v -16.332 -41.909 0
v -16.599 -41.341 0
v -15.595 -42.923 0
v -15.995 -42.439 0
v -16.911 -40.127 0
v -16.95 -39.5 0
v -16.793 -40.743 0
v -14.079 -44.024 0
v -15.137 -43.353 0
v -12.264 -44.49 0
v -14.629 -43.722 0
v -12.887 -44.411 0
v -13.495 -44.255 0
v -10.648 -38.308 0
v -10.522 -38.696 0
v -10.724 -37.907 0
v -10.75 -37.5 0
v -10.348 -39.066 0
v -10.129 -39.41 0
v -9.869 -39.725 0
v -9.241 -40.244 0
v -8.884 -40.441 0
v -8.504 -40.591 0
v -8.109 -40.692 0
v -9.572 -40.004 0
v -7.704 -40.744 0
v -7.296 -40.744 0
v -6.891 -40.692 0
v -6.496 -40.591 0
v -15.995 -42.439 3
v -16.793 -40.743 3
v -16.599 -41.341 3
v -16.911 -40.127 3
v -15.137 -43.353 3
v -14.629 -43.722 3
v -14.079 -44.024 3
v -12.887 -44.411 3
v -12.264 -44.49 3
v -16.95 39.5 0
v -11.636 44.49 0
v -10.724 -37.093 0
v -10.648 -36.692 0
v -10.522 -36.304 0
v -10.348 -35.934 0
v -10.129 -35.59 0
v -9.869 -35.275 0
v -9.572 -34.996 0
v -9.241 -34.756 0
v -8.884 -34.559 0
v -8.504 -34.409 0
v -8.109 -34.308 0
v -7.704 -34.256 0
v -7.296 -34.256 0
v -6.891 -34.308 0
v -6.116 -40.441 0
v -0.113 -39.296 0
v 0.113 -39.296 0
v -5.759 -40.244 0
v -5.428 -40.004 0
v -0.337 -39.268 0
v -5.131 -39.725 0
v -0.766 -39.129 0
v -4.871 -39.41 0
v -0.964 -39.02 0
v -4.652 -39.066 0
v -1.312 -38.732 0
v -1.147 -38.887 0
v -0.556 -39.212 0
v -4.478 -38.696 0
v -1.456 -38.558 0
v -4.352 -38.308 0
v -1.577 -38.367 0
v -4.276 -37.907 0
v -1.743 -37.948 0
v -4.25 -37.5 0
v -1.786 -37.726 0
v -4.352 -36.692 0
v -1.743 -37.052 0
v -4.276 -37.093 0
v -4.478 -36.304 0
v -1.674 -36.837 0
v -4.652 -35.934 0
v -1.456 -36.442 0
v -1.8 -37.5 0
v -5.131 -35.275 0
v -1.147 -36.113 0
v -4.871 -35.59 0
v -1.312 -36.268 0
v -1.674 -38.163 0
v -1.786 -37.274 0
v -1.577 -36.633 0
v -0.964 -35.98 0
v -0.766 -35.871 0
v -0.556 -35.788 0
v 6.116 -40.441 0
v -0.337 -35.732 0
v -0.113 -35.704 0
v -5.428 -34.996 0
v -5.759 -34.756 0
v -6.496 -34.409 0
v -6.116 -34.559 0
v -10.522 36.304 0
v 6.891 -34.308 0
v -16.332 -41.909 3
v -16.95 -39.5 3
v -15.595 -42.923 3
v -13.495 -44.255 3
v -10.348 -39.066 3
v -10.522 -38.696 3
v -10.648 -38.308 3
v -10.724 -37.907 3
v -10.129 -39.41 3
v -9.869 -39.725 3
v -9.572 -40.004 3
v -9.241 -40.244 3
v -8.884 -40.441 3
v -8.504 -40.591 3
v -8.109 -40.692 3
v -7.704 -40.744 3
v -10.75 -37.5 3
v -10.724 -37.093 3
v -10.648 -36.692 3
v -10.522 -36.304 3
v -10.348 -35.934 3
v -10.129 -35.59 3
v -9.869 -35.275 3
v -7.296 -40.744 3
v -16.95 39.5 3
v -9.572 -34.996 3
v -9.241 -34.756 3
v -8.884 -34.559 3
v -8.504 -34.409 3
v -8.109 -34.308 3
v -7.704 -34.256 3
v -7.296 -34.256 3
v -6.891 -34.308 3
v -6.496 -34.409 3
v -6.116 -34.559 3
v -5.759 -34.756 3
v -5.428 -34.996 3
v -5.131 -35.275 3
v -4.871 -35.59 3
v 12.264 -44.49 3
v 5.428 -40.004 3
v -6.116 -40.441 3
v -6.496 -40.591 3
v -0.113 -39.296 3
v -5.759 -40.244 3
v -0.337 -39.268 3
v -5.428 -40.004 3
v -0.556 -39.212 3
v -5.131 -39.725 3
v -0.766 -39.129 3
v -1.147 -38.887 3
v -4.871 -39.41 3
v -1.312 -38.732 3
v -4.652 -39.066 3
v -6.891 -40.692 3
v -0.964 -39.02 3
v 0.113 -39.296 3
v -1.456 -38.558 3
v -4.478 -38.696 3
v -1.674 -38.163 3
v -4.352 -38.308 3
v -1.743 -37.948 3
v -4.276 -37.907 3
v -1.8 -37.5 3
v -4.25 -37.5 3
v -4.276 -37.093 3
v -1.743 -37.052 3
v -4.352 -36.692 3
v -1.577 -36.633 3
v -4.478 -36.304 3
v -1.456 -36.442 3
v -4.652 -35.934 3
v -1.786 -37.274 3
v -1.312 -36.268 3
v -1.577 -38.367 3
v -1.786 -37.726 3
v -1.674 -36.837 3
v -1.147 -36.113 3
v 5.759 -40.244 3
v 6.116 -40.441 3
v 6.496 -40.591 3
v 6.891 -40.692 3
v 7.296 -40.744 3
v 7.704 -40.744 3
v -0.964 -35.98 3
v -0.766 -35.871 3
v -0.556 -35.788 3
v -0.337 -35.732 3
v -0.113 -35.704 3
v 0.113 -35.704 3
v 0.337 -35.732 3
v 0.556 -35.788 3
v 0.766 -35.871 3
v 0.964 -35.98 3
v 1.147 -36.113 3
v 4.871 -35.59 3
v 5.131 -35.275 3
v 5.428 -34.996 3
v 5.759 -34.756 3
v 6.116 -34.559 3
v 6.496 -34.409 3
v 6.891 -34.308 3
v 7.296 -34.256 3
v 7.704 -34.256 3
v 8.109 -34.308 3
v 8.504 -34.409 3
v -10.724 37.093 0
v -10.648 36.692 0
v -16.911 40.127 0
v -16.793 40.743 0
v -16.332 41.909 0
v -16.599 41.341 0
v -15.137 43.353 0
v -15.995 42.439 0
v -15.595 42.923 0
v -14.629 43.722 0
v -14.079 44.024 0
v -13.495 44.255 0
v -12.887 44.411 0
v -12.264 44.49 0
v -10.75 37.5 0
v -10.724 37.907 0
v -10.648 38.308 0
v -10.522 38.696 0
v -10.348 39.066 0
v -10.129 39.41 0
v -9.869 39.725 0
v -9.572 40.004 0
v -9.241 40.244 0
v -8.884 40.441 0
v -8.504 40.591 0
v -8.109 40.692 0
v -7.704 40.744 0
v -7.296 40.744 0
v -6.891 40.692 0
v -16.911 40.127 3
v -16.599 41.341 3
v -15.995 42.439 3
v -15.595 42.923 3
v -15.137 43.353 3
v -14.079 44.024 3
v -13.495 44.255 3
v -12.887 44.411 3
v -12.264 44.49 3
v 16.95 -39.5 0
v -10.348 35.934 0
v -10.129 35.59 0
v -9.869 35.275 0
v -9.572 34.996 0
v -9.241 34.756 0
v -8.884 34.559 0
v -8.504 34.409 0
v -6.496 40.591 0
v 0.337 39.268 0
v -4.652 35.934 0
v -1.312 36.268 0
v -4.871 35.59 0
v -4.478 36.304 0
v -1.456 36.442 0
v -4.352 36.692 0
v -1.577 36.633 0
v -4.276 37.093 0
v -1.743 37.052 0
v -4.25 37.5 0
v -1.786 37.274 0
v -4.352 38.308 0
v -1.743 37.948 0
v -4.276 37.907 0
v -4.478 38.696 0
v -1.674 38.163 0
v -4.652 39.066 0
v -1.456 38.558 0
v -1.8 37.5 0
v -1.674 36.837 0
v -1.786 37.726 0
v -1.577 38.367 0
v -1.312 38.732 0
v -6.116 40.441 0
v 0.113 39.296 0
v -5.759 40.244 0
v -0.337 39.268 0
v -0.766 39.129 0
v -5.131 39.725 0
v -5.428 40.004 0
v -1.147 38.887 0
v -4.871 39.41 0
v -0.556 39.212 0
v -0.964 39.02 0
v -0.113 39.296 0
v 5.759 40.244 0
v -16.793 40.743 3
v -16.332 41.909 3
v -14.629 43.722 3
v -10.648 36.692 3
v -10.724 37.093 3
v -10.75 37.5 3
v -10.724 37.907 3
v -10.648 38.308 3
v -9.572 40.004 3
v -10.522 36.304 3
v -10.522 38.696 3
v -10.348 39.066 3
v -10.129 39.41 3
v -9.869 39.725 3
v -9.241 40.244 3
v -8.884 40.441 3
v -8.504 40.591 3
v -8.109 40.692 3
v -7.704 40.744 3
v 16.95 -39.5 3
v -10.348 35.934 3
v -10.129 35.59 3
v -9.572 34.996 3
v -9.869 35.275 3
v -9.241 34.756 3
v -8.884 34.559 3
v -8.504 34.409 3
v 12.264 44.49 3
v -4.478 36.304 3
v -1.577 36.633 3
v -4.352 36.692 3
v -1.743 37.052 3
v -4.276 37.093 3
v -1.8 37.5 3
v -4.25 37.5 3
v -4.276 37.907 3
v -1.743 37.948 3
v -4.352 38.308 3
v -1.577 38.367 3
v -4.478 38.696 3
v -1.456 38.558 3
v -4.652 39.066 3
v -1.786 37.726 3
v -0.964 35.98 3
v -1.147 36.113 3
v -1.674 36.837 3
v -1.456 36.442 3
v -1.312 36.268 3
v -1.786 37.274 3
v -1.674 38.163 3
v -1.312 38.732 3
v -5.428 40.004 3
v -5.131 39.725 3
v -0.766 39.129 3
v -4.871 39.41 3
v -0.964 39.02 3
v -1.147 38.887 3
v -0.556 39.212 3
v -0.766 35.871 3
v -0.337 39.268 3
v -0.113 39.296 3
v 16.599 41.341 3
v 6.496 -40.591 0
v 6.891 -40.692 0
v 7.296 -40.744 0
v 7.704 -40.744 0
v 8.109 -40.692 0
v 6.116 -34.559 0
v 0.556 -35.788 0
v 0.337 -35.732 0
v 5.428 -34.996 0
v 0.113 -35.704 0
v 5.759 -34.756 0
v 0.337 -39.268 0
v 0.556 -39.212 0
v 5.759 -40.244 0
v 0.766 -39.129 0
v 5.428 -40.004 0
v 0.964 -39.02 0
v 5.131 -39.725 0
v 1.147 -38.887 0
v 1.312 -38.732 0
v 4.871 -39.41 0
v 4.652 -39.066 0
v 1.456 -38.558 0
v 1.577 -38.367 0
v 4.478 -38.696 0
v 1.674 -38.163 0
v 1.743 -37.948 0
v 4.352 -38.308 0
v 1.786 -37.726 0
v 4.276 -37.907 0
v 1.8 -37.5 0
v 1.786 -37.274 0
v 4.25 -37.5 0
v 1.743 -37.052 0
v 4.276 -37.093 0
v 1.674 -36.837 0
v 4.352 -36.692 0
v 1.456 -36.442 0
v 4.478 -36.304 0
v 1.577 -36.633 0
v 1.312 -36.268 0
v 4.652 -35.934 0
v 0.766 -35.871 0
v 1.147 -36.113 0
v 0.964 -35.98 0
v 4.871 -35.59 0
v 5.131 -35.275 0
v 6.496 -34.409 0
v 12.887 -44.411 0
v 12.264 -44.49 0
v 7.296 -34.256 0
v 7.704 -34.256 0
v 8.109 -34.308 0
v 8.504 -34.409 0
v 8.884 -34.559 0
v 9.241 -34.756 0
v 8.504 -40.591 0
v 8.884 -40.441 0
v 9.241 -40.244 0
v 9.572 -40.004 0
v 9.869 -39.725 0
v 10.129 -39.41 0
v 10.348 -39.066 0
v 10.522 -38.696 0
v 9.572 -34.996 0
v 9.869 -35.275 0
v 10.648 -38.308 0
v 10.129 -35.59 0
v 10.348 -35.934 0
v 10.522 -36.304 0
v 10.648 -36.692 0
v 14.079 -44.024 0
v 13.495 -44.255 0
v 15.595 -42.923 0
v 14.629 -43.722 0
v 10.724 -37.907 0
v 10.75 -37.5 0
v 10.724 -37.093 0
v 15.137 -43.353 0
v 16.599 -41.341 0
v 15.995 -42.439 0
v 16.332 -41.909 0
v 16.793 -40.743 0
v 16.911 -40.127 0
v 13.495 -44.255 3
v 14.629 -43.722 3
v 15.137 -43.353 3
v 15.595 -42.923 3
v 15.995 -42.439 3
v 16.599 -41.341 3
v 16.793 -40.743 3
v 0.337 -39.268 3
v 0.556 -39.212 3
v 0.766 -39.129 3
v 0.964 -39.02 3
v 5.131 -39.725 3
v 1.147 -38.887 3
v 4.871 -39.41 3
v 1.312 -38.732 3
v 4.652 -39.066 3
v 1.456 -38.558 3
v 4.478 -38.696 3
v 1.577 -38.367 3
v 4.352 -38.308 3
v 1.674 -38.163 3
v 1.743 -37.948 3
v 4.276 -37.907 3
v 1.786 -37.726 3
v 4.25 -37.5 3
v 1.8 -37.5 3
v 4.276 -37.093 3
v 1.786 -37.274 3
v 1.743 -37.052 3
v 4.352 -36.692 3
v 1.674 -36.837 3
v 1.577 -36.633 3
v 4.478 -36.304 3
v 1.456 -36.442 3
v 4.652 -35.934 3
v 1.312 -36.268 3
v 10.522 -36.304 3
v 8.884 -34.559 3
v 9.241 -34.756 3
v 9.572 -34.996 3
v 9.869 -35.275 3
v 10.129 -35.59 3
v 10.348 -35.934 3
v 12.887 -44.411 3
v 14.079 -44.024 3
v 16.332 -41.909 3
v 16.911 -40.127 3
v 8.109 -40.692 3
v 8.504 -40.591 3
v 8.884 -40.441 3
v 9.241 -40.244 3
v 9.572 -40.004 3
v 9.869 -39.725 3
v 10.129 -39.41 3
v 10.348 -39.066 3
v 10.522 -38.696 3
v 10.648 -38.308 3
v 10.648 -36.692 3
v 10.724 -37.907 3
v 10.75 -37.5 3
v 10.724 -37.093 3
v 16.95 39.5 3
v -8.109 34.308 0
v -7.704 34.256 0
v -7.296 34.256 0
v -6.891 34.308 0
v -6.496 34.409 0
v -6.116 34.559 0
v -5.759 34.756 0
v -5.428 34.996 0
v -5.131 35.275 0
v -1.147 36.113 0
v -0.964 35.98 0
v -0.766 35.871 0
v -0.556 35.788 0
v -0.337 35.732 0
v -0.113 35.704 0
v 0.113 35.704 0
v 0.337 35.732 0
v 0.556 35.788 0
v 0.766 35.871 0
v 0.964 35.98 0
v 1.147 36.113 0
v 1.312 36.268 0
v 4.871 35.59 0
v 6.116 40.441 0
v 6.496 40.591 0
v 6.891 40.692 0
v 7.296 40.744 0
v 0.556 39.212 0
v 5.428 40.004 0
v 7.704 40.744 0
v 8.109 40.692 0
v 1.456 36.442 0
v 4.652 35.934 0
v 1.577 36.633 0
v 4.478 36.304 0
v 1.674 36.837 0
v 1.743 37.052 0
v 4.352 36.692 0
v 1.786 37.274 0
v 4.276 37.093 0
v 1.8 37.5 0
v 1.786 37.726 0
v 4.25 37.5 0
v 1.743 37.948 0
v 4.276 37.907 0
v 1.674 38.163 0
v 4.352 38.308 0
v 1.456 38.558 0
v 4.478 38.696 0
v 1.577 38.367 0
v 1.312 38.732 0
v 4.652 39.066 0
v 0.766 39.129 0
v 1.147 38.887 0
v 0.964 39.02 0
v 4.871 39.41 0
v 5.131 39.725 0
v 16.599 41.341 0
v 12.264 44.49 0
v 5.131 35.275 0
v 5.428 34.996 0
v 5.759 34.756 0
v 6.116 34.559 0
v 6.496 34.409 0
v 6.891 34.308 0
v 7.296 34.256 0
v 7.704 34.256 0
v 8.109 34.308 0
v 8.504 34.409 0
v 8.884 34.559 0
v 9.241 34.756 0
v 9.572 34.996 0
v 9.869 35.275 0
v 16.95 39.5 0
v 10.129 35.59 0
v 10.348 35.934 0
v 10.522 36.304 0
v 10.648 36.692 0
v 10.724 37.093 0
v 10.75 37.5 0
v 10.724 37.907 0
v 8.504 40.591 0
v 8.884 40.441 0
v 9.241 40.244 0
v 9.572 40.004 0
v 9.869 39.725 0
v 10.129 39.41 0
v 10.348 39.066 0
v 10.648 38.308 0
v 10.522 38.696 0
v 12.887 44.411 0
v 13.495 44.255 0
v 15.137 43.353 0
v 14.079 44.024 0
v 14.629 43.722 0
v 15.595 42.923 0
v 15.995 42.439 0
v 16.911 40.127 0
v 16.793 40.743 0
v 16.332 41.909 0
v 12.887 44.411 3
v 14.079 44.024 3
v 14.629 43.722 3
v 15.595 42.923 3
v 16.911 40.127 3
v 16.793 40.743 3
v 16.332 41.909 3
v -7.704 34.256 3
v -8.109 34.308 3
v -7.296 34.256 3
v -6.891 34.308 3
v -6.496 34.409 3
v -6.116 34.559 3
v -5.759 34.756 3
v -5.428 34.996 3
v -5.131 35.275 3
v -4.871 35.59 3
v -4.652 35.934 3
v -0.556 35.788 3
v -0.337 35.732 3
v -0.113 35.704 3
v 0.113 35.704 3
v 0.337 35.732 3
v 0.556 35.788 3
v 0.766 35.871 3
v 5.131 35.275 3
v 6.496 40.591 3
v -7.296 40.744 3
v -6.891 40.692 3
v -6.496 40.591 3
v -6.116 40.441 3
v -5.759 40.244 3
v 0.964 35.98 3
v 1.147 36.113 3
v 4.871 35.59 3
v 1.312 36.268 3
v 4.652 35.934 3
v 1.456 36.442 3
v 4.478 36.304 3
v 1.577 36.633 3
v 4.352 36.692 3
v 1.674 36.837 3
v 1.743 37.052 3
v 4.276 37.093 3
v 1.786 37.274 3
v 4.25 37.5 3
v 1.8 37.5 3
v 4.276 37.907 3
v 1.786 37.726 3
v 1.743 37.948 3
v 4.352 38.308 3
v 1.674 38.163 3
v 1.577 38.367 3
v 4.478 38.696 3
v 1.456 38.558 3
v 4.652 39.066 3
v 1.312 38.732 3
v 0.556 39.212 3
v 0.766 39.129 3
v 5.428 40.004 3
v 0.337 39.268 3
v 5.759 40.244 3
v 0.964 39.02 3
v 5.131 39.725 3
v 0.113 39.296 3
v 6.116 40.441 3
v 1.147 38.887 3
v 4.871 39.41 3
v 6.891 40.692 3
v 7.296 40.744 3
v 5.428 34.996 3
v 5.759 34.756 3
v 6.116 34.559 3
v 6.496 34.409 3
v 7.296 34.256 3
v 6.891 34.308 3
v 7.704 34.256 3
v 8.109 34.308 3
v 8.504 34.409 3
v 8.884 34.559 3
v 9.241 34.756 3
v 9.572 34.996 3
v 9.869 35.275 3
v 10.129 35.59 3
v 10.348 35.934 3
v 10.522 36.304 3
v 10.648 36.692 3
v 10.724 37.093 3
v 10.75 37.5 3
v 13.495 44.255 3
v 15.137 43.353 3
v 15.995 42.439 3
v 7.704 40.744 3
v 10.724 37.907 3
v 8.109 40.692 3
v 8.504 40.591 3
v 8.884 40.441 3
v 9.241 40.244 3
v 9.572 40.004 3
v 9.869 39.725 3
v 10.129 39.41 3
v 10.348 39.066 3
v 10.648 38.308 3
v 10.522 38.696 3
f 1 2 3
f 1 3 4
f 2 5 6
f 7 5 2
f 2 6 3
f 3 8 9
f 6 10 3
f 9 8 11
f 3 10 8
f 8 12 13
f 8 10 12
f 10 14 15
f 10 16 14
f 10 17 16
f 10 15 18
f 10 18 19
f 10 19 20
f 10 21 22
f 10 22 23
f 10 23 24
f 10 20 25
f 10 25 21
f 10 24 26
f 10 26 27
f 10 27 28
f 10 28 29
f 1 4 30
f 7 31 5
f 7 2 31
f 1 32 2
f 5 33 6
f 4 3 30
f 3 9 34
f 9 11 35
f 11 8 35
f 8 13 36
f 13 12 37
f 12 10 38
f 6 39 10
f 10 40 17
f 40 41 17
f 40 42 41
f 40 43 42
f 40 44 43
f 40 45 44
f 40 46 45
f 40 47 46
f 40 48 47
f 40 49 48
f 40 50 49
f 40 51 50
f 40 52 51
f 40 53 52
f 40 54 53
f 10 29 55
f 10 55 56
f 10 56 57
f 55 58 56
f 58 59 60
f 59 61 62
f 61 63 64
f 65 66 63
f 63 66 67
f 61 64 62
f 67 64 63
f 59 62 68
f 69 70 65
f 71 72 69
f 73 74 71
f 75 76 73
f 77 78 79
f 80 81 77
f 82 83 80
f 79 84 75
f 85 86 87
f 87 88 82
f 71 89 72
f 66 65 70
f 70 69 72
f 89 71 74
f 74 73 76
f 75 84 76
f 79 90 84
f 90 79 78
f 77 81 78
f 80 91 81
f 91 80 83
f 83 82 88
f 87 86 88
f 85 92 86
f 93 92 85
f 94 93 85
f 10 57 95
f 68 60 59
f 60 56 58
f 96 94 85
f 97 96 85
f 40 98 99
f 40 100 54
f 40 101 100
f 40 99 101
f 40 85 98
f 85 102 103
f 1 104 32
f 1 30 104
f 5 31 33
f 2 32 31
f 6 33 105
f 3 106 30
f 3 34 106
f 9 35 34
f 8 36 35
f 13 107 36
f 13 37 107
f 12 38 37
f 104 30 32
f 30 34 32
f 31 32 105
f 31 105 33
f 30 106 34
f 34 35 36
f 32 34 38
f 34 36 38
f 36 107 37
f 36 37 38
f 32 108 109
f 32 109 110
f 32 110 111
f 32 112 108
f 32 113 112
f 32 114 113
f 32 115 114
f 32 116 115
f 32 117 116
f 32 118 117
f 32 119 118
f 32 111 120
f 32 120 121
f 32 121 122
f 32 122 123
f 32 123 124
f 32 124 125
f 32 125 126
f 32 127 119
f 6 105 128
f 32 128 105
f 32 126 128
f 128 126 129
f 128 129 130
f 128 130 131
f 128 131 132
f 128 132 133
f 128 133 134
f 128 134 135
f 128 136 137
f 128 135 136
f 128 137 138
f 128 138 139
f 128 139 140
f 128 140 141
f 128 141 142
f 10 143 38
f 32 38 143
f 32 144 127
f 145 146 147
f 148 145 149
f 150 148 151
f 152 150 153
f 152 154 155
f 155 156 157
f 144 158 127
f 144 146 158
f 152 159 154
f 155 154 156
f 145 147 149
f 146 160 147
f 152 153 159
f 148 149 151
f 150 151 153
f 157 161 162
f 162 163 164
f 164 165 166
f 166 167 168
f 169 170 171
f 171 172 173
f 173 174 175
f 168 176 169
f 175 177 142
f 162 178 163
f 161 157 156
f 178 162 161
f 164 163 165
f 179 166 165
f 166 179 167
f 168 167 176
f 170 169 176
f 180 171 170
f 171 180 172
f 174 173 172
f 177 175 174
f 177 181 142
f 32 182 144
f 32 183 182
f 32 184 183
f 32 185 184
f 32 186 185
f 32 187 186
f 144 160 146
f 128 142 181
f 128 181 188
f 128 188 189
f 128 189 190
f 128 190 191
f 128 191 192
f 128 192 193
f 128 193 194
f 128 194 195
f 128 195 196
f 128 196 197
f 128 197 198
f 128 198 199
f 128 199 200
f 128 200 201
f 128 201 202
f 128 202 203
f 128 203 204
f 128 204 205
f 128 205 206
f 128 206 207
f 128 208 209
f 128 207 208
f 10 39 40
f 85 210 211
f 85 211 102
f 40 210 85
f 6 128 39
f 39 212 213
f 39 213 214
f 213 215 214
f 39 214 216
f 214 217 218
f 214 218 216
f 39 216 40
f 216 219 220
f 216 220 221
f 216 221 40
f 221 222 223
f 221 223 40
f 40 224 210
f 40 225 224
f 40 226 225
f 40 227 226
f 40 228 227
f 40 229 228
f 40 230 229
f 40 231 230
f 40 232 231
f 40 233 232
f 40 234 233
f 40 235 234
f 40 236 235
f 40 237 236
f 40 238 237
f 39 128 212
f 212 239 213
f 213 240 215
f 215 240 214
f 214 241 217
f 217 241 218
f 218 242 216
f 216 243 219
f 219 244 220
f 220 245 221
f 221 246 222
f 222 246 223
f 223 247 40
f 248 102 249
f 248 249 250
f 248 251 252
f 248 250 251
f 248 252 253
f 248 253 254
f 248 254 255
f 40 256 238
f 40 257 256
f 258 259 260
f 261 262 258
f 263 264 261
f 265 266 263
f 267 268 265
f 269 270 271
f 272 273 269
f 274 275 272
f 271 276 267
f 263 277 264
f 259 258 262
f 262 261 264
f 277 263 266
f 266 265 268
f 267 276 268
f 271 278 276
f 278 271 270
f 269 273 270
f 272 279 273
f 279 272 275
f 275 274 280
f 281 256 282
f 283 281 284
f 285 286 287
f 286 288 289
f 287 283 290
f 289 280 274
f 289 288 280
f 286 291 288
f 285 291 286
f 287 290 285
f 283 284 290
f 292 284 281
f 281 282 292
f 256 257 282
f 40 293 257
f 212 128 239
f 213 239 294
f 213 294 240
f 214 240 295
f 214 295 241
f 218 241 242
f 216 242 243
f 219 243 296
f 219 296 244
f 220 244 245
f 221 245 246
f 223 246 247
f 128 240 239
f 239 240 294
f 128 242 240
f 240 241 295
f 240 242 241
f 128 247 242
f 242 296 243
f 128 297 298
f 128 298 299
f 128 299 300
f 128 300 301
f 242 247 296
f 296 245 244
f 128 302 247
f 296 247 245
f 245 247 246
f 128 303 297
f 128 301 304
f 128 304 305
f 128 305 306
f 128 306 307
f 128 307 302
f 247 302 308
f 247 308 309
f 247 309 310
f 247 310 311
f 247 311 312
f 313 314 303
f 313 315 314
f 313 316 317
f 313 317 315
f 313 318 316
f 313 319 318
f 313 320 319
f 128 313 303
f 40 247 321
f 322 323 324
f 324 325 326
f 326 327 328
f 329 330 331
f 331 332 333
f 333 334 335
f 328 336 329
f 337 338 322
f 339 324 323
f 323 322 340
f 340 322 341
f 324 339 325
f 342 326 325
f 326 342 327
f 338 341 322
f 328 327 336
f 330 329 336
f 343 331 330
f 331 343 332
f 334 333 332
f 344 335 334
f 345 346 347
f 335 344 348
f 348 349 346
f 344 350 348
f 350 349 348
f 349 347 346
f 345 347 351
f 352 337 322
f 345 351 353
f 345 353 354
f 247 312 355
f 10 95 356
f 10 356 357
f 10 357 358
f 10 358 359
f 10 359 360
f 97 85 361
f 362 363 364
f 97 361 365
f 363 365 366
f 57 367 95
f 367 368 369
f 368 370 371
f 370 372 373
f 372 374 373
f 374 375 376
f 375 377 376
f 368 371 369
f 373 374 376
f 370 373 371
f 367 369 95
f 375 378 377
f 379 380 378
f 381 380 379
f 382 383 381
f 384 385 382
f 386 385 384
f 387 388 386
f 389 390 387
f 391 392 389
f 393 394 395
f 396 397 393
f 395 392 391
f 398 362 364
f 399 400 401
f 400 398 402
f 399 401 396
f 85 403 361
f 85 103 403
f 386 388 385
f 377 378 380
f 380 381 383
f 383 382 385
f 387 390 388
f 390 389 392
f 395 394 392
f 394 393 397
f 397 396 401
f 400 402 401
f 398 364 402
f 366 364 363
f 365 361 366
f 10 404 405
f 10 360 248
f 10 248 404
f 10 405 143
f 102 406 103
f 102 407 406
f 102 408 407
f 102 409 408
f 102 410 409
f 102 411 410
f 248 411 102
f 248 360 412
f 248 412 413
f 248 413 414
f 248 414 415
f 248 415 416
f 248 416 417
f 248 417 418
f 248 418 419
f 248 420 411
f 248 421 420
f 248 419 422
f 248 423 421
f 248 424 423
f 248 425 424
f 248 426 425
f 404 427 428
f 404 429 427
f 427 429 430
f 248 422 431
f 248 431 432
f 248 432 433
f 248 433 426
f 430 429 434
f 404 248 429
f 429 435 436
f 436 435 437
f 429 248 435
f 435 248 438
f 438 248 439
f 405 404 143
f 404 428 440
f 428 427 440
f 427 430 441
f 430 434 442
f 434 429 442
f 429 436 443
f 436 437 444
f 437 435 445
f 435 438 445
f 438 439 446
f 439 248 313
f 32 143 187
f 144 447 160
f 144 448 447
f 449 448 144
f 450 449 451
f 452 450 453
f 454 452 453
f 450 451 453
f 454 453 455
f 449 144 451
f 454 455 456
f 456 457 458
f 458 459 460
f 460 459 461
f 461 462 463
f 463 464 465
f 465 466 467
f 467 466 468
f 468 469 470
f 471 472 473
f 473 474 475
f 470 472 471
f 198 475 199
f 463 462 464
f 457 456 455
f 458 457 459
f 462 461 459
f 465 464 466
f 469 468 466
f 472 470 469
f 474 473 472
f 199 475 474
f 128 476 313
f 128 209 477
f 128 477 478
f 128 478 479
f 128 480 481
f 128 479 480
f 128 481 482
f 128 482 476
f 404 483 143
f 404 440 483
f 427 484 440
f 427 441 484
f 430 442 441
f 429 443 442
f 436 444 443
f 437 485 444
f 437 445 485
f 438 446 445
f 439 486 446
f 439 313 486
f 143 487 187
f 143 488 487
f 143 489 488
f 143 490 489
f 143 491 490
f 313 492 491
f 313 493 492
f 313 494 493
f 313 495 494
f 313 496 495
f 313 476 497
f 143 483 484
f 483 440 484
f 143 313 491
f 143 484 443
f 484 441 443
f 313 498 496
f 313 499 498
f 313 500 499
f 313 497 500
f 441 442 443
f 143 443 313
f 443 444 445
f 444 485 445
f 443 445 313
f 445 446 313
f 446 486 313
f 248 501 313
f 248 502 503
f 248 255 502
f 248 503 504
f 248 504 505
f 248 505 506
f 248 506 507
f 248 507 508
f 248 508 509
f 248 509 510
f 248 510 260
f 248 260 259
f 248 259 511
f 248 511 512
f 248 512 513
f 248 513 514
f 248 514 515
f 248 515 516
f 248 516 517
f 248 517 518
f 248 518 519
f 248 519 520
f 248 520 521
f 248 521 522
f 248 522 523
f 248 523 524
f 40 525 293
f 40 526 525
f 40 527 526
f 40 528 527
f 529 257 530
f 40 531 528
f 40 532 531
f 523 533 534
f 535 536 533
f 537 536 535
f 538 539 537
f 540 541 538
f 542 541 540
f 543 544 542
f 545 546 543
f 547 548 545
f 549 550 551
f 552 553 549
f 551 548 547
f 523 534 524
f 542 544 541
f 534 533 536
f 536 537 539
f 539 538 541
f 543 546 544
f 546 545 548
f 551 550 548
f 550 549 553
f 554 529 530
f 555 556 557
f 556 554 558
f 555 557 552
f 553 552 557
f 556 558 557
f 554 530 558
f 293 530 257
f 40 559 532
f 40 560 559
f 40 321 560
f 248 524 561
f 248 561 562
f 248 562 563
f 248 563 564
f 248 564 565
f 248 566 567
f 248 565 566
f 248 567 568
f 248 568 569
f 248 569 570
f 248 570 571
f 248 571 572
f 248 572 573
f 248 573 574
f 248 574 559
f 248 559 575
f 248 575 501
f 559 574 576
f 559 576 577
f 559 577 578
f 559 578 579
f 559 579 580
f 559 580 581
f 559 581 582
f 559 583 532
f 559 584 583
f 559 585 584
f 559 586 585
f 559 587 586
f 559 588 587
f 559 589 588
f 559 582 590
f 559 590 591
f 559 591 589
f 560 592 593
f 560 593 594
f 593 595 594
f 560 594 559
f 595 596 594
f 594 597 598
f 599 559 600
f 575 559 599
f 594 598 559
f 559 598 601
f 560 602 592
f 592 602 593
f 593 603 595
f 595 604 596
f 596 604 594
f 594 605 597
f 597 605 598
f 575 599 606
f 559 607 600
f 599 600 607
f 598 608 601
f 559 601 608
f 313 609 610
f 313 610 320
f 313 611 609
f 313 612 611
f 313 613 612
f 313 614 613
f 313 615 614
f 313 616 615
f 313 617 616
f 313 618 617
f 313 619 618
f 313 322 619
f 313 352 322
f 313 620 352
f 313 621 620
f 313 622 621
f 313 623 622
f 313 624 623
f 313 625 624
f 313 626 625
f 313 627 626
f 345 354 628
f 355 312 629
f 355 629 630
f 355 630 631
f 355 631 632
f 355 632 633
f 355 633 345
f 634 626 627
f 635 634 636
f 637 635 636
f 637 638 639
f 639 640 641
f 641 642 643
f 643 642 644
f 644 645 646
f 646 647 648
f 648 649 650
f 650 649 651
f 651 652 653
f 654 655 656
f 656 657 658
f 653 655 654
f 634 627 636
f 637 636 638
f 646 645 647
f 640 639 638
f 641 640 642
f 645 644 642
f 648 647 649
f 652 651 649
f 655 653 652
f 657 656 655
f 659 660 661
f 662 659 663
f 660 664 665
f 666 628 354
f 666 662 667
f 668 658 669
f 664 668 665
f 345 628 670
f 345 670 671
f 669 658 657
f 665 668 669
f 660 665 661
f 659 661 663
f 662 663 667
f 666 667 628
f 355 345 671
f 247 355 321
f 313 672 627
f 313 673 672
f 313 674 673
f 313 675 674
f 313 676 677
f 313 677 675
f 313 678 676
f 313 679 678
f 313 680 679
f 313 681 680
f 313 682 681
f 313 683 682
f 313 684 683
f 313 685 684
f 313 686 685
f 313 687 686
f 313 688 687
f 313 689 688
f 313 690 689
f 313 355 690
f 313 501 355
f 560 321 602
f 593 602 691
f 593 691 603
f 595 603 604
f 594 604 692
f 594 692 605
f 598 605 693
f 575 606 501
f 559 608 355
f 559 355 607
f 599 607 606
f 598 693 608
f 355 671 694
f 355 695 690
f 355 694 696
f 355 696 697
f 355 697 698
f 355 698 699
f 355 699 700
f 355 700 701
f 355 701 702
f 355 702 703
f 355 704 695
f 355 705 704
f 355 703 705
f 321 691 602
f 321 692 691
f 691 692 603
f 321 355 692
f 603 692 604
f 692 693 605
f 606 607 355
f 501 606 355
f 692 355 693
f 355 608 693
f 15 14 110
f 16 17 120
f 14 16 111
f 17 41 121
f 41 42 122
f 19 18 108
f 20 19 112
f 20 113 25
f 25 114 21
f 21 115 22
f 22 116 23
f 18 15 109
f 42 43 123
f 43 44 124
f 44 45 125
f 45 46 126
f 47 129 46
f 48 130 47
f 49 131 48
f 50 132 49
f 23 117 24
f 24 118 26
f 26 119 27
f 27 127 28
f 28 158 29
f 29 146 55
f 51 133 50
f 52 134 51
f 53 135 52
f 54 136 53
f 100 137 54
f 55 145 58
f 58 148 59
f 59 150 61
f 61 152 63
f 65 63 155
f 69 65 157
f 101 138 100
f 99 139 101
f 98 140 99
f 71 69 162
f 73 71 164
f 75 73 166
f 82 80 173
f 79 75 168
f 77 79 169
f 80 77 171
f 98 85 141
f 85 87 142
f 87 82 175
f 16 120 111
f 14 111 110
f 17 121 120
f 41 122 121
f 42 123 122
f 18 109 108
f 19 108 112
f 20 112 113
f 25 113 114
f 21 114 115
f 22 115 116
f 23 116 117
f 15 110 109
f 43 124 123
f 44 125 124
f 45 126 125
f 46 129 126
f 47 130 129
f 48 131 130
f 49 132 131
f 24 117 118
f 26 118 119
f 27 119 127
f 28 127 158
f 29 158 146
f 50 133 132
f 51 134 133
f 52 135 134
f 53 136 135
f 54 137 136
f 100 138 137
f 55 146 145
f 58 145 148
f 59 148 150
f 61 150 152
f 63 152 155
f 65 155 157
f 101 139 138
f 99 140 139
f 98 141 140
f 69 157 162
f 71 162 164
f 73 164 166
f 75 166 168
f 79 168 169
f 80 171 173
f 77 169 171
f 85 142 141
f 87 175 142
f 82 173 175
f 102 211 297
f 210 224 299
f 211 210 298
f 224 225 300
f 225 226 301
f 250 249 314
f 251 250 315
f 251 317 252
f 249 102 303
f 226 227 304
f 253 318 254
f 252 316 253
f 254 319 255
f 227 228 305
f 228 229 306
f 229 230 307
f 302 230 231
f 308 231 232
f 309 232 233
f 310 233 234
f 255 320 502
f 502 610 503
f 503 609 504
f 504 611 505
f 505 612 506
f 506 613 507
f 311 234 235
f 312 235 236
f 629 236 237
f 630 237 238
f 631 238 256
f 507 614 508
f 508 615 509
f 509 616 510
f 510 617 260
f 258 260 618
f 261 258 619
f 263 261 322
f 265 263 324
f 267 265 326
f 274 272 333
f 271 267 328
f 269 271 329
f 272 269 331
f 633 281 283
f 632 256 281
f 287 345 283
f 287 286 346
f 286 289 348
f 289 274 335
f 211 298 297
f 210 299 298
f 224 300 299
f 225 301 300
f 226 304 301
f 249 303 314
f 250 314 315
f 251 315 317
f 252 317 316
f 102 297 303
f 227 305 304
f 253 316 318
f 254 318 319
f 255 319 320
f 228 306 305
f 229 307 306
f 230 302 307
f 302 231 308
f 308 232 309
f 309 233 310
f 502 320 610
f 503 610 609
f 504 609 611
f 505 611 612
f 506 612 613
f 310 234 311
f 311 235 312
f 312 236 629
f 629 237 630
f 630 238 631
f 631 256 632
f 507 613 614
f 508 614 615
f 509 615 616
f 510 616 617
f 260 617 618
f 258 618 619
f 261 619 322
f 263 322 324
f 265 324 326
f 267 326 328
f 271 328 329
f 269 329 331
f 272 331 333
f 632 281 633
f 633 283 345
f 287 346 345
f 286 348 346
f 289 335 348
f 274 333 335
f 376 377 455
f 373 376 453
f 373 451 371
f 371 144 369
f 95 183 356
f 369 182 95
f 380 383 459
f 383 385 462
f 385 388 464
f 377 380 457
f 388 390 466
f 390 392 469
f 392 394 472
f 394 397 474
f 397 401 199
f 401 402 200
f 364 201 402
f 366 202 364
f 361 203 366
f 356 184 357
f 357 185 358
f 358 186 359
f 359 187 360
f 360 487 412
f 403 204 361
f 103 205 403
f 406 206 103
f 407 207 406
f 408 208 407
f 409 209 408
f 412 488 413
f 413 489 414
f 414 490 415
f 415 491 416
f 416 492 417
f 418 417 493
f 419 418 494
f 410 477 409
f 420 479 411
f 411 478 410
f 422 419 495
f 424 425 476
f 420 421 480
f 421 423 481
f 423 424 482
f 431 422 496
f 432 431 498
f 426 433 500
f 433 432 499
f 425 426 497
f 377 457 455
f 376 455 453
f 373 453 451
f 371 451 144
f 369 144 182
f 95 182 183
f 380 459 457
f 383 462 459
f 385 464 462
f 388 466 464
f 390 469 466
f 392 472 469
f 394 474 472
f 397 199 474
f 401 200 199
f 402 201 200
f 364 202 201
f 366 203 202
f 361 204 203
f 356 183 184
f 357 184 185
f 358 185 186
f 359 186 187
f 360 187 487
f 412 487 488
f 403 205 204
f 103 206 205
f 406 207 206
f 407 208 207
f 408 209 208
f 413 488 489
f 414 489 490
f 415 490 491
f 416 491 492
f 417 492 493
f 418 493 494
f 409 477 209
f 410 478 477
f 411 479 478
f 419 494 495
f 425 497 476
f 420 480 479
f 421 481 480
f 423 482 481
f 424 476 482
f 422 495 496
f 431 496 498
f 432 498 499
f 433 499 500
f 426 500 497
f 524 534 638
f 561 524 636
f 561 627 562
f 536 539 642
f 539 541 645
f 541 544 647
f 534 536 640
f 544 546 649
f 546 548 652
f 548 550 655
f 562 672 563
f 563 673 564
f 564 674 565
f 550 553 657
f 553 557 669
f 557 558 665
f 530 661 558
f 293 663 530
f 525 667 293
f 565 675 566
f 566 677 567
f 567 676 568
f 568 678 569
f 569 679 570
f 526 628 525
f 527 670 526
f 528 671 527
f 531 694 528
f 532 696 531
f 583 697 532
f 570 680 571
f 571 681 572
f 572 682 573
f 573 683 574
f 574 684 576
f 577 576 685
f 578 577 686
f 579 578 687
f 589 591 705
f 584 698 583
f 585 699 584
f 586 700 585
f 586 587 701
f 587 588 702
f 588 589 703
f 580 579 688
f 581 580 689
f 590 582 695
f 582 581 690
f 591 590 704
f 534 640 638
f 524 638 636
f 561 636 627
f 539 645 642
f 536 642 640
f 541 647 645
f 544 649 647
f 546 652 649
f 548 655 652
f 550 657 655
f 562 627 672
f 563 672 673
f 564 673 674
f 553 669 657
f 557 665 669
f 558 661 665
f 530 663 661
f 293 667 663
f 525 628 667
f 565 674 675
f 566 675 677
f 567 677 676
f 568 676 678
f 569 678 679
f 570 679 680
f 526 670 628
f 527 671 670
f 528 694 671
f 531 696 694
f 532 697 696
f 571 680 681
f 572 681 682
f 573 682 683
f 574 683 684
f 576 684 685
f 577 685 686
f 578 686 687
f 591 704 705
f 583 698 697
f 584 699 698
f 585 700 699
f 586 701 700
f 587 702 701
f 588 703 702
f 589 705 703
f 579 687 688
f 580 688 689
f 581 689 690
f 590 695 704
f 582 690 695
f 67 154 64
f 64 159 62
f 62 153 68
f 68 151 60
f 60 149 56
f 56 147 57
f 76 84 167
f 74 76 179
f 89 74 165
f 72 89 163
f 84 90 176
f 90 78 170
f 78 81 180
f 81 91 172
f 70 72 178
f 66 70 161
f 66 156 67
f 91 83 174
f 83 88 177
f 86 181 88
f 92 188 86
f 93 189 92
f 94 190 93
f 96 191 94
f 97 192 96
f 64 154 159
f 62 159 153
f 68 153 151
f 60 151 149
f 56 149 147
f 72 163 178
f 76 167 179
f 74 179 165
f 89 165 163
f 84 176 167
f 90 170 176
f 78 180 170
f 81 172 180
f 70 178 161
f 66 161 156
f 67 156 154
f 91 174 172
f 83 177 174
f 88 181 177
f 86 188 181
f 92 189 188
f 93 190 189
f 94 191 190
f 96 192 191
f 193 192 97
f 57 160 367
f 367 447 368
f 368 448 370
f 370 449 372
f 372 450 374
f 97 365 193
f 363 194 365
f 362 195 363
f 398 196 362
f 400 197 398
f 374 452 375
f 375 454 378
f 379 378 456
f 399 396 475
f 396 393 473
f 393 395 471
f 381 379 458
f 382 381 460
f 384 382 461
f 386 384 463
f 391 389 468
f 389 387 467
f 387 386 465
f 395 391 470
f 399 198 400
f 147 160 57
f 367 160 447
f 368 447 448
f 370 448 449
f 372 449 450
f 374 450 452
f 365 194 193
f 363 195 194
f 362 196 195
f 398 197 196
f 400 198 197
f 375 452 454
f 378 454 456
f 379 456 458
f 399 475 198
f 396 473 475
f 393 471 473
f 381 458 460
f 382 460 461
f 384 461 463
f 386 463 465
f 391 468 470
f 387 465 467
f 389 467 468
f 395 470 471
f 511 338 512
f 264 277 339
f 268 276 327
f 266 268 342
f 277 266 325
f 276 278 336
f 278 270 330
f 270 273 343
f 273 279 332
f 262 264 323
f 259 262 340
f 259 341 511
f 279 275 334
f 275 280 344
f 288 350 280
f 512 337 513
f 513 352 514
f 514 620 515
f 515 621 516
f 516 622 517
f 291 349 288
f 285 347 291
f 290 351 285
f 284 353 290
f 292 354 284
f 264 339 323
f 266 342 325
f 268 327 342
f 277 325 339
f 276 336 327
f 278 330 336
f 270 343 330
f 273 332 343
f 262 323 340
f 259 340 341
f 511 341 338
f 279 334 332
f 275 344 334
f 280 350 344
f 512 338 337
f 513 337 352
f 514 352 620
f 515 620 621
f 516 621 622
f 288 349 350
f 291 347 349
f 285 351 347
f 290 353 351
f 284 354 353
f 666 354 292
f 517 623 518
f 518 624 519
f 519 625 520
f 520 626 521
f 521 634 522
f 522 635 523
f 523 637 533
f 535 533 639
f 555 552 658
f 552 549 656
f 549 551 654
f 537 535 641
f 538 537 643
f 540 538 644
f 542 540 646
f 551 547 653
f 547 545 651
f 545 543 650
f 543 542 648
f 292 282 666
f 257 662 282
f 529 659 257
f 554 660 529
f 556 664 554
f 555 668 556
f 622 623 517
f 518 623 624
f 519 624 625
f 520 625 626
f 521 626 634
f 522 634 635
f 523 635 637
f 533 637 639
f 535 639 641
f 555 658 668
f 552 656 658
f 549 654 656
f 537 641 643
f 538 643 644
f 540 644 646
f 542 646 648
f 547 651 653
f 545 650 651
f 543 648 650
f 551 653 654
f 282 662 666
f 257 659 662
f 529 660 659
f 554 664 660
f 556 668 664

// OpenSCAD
$fn = 50;

difference() {
	union() {
		hull() {
			translate(v = [-11.95, 39.5, 0]) {
				cylinder(h = 3, r = 5);
			}
			translate(v = [11.95, 39.5, 0]) {
				cylinder(h = 3, r = 5);
			}
			translate(v = [-11.95, -39.5, 0]) {
				cylinder(h = 3, r = 5);
			}
			translate(v = [11.95, -39.5, 0]) {
				cylinder(h = 3, r = 5);
			}
		}
	}
	union() {
		translate(v = [-7.5, -37.5, -1]) {
			cylinder(h = 5, r = 3.25);
		}
		translate(v = [-7.5, 37.5, -1]) {
			cylinder(h = 5, r = 3.25);
		}
		translate(v = [7.5, -37.5, -1]) {
			cylinder(h = 5, r = 3.25);
		}
		translate(v = [7.5, 37.5, -1]) {
			cylinder(h = 5, r = 3.25);
		}
		translate(v = [0.0, -37.5, -1]) {
			cylinder(h = 5, r = 1.8);
		}
		translate(v = [0.0, 37.5, -1]) {
			cylinder(h = 5, r = 1.8);
		}
	}
}
